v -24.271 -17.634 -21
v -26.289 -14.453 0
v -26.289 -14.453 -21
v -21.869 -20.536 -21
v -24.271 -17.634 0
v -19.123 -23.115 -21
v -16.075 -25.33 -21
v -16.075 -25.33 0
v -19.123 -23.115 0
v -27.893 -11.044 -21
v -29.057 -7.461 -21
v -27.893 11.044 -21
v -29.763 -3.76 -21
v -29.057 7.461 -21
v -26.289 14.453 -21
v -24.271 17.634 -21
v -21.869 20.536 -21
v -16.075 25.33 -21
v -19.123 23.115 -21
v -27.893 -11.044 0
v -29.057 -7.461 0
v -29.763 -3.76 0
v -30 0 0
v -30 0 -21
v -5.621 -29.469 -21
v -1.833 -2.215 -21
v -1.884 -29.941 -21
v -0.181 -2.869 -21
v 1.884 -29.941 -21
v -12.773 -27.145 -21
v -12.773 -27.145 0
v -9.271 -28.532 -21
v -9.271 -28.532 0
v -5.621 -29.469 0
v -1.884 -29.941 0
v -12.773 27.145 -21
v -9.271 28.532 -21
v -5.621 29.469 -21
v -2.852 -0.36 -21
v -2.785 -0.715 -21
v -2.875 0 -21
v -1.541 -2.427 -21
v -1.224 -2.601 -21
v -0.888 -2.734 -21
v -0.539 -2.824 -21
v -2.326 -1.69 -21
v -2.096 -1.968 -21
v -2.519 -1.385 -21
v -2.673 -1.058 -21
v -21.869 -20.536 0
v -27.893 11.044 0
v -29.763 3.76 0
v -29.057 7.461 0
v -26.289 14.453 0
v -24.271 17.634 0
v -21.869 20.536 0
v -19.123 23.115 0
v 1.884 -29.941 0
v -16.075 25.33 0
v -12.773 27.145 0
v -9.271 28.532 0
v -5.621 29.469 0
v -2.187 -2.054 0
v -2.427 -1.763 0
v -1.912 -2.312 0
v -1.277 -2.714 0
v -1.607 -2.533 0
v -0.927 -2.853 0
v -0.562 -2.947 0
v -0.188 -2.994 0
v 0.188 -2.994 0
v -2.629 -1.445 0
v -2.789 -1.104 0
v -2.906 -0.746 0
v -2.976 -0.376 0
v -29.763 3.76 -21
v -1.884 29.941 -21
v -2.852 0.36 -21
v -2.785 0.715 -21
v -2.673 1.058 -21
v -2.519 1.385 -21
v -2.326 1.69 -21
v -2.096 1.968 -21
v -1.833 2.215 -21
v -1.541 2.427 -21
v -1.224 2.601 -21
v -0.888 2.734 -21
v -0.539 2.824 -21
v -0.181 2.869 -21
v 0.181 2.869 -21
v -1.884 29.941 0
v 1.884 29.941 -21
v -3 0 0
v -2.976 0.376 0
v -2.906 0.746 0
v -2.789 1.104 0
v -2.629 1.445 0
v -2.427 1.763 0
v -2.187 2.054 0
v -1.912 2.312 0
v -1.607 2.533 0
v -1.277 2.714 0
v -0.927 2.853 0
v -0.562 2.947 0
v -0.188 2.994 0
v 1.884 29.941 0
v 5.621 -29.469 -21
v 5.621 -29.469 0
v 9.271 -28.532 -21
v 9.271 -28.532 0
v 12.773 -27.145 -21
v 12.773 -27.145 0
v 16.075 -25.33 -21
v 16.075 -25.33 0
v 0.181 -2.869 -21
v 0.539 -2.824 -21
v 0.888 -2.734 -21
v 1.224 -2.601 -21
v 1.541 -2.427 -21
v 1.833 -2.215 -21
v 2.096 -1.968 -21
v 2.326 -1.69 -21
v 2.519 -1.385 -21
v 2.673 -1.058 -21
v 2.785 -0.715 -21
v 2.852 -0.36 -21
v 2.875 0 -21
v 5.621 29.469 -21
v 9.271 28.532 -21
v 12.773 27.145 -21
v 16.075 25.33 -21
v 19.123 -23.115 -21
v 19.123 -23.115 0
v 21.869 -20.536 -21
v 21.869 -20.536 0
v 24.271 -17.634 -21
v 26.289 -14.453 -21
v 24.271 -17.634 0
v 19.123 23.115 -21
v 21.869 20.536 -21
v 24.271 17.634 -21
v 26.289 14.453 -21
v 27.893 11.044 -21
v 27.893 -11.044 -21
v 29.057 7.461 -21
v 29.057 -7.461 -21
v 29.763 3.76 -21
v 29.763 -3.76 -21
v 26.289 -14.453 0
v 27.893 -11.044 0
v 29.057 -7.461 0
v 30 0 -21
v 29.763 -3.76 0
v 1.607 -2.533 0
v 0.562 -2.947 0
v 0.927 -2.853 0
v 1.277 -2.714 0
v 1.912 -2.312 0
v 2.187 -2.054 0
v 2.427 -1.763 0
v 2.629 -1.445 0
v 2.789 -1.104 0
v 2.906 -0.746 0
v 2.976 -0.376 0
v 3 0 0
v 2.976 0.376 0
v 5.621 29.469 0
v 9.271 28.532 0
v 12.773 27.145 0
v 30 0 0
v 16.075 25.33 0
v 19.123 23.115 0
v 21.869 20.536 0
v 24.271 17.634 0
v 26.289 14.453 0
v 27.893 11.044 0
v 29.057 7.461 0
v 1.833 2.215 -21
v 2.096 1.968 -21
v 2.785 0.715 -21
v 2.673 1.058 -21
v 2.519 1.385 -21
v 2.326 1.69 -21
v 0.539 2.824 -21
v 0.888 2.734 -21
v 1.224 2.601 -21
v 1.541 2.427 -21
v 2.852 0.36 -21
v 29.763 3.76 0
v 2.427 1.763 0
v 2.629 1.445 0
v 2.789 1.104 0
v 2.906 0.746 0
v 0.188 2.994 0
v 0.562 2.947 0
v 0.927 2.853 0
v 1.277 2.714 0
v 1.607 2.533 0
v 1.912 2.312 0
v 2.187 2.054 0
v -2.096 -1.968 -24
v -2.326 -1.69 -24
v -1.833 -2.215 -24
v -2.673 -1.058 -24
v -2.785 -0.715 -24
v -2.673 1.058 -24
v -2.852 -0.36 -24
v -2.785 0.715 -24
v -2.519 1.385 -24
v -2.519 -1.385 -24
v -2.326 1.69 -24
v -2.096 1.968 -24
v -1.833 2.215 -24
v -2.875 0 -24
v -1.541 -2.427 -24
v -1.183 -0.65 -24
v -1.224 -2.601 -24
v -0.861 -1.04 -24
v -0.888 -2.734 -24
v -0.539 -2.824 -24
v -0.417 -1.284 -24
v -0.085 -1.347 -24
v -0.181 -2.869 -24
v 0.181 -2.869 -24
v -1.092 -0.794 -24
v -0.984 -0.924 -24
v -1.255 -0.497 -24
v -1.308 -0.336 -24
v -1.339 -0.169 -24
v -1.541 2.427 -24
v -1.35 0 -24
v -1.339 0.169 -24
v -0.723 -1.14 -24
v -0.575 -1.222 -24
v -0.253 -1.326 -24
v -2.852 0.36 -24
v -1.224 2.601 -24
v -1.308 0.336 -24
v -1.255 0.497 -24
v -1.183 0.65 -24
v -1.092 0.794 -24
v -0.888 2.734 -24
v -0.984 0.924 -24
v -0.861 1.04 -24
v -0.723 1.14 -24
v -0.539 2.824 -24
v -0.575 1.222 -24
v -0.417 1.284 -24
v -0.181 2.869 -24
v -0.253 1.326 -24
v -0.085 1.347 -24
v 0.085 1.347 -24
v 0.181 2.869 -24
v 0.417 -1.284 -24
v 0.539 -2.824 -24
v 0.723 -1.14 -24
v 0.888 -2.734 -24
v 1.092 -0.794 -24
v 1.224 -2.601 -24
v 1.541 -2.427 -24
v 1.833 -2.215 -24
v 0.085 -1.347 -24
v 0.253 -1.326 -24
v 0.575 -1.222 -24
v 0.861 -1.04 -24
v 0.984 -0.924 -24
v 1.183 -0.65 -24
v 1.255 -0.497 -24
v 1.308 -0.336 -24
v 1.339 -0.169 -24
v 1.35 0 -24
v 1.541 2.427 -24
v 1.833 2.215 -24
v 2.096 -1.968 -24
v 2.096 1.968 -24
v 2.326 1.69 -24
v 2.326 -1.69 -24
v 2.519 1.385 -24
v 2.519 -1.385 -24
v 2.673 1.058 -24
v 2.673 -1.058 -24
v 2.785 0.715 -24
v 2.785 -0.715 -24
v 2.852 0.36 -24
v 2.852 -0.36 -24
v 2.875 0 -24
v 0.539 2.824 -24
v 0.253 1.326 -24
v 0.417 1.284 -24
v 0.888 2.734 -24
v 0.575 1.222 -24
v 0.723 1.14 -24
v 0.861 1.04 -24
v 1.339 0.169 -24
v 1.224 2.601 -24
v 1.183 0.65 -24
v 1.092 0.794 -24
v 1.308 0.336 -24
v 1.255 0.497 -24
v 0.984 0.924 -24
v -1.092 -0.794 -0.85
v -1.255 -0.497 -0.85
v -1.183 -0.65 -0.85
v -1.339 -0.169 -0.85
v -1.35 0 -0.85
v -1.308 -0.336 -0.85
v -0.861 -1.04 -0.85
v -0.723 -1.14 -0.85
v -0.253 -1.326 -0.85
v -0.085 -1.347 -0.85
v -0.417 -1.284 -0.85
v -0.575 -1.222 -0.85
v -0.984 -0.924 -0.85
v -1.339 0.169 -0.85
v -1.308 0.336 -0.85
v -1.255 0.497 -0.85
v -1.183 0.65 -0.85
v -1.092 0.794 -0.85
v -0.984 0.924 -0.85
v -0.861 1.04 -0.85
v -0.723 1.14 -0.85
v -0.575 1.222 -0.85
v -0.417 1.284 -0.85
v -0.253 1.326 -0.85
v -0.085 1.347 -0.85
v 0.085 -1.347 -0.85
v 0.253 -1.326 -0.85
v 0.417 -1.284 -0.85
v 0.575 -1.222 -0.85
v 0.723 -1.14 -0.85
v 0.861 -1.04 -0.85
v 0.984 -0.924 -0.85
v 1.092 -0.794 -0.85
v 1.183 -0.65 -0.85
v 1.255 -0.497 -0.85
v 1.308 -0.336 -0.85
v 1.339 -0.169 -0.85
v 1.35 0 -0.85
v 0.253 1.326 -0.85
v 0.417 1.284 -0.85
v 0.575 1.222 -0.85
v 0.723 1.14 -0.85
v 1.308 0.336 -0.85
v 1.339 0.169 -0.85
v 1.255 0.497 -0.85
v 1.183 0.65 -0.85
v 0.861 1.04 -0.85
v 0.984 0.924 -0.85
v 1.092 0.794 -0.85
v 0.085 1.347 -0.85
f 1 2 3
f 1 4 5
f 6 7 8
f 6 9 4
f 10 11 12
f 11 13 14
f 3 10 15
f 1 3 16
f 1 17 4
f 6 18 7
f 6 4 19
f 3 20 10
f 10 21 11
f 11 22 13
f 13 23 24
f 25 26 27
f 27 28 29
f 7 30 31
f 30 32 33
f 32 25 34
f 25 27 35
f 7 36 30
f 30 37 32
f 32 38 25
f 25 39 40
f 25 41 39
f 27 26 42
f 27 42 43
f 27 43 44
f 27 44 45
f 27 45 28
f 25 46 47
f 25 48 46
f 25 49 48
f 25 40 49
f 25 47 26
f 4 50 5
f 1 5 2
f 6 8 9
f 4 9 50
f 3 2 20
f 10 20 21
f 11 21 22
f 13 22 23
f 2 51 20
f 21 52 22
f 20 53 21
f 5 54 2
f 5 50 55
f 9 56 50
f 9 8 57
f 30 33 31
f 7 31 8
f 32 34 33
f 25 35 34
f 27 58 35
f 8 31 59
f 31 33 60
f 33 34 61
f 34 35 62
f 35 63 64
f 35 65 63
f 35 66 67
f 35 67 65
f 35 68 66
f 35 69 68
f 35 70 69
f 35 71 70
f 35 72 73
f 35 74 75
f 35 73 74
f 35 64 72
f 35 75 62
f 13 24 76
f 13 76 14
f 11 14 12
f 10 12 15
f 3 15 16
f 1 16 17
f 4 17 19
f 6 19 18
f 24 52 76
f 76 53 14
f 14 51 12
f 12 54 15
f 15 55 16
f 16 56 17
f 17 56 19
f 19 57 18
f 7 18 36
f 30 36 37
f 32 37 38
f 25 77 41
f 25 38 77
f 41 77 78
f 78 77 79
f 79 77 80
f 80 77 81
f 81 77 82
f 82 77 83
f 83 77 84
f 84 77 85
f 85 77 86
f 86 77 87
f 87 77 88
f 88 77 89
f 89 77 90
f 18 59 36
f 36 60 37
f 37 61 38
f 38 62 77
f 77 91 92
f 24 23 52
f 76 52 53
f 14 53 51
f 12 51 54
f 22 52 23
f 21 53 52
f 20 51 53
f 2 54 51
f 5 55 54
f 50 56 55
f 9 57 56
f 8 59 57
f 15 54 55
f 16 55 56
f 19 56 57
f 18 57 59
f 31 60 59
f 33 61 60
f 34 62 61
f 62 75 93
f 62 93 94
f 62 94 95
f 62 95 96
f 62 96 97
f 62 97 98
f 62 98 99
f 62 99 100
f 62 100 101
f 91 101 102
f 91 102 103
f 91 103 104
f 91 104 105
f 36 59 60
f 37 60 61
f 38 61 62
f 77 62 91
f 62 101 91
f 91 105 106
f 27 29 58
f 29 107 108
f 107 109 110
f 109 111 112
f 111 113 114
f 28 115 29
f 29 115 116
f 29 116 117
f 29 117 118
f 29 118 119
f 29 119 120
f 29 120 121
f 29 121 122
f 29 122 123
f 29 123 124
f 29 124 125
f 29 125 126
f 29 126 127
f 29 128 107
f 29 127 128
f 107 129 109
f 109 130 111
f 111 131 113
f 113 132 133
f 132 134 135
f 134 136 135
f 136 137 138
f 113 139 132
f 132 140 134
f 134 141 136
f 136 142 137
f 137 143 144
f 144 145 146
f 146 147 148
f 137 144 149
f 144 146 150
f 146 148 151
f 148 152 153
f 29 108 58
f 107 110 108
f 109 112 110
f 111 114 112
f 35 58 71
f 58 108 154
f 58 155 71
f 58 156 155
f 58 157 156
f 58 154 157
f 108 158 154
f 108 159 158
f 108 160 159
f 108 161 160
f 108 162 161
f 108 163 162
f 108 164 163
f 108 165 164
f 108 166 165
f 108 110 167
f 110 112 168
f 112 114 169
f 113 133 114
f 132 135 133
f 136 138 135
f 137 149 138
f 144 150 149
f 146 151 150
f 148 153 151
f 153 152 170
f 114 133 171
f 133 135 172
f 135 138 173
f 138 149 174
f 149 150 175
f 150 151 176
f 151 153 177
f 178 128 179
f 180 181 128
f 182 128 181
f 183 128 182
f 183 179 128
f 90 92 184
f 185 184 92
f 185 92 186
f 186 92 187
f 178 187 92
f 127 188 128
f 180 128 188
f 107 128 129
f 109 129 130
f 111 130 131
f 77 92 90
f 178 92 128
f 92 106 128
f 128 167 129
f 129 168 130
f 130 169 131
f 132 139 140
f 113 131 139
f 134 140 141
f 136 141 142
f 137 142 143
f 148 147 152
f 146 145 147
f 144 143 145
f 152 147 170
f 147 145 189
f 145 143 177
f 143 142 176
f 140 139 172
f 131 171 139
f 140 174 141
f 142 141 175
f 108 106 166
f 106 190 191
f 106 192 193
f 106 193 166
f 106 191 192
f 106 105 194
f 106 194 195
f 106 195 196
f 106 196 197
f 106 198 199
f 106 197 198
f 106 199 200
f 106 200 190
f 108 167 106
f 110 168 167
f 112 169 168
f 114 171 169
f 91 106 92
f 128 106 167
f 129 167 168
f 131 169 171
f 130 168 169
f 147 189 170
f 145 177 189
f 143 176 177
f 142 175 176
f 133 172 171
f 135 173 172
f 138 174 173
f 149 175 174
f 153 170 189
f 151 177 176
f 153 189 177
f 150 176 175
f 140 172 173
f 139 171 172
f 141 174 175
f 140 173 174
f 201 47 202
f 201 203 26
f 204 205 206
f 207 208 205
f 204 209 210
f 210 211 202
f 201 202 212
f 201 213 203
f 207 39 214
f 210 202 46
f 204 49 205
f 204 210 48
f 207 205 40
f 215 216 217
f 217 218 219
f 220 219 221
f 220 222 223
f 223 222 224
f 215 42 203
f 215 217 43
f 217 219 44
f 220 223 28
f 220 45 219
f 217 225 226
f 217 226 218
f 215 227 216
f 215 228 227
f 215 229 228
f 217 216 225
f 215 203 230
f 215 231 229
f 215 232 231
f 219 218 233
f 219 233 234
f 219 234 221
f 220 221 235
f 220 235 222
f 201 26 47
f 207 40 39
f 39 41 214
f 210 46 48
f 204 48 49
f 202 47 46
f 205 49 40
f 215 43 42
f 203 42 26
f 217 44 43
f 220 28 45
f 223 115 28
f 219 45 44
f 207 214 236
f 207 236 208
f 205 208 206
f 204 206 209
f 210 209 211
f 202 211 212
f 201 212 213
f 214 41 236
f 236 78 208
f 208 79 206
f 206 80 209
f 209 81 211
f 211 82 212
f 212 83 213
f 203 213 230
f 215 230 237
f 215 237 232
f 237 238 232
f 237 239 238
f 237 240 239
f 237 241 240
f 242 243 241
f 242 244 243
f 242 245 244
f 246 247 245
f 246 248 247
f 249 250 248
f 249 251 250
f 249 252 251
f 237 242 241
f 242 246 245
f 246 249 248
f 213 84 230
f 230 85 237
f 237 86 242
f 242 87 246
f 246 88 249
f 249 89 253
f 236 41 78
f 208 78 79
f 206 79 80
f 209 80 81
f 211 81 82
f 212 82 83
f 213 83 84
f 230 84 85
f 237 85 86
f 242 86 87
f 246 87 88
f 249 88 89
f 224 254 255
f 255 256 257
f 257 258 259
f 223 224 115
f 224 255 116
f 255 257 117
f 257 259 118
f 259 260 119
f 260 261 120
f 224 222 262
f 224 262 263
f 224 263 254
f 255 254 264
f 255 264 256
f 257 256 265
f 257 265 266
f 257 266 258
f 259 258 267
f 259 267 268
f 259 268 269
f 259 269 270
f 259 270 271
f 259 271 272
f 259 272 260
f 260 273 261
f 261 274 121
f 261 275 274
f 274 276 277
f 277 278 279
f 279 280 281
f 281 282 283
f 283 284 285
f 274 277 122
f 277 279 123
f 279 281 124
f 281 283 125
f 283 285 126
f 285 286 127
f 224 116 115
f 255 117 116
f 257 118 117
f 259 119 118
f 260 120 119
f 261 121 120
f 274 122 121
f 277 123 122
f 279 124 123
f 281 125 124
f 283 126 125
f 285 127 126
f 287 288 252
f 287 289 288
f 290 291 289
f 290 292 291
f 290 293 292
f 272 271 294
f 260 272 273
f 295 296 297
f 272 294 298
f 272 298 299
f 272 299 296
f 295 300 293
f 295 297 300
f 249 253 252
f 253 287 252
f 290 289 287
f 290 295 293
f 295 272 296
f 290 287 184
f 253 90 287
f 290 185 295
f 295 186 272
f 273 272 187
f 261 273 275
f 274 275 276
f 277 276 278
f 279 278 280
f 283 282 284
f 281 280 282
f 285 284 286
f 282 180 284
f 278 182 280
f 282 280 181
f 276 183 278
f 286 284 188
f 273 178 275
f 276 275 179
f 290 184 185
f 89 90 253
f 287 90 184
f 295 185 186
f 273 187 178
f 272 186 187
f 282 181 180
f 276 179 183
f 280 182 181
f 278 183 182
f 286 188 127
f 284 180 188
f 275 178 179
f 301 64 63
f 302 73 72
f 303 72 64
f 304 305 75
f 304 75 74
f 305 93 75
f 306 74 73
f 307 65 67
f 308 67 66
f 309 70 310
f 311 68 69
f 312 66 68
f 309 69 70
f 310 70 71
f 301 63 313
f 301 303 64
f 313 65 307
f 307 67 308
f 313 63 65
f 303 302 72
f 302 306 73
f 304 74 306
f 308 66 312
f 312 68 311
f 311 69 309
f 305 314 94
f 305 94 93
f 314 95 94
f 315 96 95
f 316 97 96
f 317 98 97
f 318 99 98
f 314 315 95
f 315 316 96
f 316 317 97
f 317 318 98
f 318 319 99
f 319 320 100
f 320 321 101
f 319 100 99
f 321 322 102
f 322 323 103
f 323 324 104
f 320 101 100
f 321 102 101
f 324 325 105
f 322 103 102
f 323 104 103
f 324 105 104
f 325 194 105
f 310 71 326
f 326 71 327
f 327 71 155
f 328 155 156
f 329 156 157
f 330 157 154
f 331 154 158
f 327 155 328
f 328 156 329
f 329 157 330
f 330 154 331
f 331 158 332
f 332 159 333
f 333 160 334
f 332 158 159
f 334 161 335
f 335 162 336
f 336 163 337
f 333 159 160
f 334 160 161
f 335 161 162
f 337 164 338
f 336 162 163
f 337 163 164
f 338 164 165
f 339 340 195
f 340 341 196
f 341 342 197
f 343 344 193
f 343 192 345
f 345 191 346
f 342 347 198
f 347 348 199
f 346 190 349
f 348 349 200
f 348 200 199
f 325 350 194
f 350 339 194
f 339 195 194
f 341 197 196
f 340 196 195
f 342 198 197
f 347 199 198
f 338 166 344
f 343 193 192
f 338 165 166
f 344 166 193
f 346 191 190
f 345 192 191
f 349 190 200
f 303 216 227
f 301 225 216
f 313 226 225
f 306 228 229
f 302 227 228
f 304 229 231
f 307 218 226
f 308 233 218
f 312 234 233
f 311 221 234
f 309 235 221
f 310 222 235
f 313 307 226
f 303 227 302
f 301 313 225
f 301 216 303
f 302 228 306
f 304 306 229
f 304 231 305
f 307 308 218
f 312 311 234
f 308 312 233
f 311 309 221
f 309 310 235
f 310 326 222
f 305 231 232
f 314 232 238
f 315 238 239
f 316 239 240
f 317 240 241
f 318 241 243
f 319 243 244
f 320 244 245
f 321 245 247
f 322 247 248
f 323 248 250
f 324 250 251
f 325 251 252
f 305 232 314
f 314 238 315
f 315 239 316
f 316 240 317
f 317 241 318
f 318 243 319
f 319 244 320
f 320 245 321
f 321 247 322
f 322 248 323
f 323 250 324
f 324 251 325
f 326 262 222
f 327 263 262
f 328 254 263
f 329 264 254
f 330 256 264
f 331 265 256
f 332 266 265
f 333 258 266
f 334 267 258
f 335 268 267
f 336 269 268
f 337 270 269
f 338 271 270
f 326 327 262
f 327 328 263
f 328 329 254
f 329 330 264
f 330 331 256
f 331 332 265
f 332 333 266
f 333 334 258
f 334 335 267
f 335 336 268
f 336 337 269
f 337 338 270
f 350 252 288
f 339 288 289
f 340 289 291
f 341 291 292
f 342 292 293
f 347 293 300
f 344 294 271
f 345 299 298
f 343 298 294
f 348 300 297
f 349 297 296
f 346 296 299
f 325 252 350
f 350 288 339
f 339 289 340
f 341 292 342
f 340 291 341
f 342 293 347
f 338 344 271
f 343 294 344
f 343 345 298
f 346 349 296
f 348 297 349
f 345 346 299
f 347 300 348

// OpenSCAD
$fn = 50;

difference() {
	union() {
		translate(v = [0, 0, -21.0]) {
			cylinder(h = 21, r = 30.0);
		}
		#translate(v = [0, 0, -24.0]) {
			cylinder(h = 24, r = 2.875);
		}
	}
	union() {
		translate(v = [0, 0, 0]) {
			rotate(a = [0, 0, 0]) {
				difference() {
					union() {
						translate(v = [0, 0, -24.0]) {
							cylinder(h = 24, r = 1.0);
						}
						translate(v = [0, 0, -0.85]) {
							cylinder(h = 0.85, r1 = 1.35, r2 = 3.0);
						}
						translate(v = [0, 0, -24.0]) {
							cylinder(h = 24, r = 1.35);
						}
						translate(v = [0, 0, -24.0]) {
							cylinder(h = 24, r = 1.0);
						}
					}
					union();
				}
			}
		}
	}
}
